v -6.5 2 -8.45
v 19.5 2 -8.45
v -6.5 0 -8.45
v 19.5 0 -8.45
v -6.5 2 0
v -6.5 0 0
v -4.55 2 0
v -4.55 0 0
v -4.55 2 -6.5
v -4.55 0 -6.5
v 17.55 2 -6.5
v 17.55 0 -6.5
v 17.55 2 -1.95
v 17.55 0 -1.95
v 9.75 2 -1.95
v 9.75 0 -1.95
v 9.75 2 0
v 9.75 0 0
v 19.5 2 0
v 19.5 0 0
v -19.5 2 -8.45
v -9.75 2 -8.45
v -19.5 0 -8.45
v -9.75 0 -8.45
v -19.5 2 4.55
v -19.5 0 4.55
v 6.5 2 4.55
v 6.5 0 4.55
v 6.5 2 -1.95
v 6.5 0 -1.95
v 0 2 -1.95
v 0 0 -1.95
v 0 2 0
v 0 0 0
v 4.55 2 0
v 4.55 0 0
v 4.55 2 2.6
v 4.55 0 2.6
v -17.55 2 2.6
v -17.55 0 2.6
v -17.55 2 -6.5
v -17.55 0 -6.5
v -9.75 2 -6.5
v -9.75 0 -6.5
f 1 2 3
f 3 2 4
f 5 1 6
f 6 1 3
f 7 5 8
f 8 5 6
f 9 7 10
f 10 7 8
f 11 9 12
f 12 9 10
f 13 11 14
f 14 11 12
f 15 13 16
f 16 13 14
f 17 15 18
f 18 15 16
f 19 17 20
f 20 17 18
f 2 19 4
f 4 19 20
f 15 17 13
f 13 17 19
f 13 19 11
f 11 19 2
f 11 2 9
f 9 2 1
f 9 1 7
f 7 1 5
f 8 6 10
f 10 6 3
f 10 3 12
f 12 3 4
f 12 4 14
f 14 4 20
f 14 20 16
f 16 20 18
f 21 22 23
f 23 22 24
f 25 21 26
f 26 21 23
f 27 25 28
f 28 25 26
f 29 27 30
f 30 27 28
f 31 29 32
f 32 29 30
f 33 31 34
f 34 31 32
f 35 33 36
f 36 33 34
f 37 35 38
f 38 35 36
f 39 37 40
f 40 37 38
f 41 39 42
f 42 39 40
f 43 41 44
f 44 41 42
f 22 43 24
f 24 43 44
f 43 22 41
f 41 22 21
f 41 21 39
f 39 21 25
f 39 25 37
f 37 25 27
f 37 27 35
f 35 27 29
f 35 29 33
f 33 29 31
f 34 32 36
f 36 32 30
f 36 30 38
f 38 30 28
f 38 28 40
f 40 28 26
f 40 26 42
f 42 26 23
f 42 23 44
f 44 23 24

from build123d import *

# Parameters (mm, degrees)
BOSS_EXTRUDE1_DEPTH   = 2
BOSS_EXTRUDE1_2_DEPTH = 2


with BuildPart() as part:
    # Sketch1 → Boss-Extrude1 (new body)
    with BuildSketch(Plane(origin=(0, 0, 0), x_dir=(1, 0, 0), z_dir=(0, 1, 0))):
        Polygon((-6.5, 8.45), (-6.5, 0), (-4.55, 0), (-4.55, 6.5), (17.55, 6.5), (17.55, 1.95), (9.75, 1.95), (9.75, 0), (19.5, 0), (19.5, 8.45), align=None)
    extrude(amount=BOSS_EXTRUDE1_DEPTH)


with BuildPart() as body_2:
    # Sketch1 → Boss-Extrude1 2 (new body)
    with BuildSketch(Plane(origin=(0, 0, 0), x_dir=(1, 0, 0), z_dir=(0, 1, 0))):
        Polygon((-19.5, 8.45), (-19.5, -4.55), (6.5, -4.55), (6.5, 1.95), (0, 1.95), (0, 0), (4.55, 0), (4.55, -2.6), (-17.55, -2.6), (-17.55, 6.5), (-9.75, 6.5), (-9.75, 8.45), align=None)
    extrude(amount=BOSS_EXTRUDE1_2_DEPTH)


solid = Compound([part.part, body_2.part])
